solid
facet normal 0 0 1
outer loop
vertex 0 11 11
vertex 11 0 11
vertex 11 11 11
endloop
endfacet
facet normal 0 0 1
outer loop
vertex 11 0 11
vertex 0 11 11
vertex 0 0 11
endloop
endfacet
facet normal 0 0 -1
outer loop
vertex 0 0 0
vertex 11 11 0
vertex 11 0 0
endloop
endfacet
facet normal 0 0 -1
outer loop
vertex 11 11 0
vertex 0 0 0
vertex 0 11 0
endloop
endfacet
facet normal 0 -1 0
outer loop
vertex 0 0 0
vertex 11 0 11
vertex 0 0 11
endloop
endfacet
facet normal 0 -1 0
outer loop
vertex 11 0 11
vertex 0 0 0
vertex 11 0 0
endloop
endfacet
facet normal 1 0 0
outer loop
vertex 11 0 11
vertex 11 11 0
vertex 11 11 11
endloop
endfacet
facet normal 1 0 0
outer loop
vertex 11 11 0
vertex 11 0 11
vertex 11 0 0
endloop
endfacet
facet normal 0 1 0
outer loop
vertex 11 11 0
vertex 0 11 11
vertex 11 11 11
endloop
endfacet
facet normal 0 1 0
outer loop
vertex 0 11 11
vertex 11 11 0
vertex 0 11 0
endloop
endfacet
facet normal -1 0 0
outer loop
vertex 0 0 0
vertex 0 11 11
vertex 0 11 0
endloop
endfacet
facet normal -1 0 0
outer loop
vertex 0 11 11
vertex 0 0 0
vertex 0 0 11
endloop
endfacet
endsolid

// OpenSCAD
// Adding vectors of unequal length adds the common prefix: [1,2]+[1,2,3]=[2,4].
sum = [1, 2] + [1, 2, 3];
cube(sum == undef ? 5 : 11);
